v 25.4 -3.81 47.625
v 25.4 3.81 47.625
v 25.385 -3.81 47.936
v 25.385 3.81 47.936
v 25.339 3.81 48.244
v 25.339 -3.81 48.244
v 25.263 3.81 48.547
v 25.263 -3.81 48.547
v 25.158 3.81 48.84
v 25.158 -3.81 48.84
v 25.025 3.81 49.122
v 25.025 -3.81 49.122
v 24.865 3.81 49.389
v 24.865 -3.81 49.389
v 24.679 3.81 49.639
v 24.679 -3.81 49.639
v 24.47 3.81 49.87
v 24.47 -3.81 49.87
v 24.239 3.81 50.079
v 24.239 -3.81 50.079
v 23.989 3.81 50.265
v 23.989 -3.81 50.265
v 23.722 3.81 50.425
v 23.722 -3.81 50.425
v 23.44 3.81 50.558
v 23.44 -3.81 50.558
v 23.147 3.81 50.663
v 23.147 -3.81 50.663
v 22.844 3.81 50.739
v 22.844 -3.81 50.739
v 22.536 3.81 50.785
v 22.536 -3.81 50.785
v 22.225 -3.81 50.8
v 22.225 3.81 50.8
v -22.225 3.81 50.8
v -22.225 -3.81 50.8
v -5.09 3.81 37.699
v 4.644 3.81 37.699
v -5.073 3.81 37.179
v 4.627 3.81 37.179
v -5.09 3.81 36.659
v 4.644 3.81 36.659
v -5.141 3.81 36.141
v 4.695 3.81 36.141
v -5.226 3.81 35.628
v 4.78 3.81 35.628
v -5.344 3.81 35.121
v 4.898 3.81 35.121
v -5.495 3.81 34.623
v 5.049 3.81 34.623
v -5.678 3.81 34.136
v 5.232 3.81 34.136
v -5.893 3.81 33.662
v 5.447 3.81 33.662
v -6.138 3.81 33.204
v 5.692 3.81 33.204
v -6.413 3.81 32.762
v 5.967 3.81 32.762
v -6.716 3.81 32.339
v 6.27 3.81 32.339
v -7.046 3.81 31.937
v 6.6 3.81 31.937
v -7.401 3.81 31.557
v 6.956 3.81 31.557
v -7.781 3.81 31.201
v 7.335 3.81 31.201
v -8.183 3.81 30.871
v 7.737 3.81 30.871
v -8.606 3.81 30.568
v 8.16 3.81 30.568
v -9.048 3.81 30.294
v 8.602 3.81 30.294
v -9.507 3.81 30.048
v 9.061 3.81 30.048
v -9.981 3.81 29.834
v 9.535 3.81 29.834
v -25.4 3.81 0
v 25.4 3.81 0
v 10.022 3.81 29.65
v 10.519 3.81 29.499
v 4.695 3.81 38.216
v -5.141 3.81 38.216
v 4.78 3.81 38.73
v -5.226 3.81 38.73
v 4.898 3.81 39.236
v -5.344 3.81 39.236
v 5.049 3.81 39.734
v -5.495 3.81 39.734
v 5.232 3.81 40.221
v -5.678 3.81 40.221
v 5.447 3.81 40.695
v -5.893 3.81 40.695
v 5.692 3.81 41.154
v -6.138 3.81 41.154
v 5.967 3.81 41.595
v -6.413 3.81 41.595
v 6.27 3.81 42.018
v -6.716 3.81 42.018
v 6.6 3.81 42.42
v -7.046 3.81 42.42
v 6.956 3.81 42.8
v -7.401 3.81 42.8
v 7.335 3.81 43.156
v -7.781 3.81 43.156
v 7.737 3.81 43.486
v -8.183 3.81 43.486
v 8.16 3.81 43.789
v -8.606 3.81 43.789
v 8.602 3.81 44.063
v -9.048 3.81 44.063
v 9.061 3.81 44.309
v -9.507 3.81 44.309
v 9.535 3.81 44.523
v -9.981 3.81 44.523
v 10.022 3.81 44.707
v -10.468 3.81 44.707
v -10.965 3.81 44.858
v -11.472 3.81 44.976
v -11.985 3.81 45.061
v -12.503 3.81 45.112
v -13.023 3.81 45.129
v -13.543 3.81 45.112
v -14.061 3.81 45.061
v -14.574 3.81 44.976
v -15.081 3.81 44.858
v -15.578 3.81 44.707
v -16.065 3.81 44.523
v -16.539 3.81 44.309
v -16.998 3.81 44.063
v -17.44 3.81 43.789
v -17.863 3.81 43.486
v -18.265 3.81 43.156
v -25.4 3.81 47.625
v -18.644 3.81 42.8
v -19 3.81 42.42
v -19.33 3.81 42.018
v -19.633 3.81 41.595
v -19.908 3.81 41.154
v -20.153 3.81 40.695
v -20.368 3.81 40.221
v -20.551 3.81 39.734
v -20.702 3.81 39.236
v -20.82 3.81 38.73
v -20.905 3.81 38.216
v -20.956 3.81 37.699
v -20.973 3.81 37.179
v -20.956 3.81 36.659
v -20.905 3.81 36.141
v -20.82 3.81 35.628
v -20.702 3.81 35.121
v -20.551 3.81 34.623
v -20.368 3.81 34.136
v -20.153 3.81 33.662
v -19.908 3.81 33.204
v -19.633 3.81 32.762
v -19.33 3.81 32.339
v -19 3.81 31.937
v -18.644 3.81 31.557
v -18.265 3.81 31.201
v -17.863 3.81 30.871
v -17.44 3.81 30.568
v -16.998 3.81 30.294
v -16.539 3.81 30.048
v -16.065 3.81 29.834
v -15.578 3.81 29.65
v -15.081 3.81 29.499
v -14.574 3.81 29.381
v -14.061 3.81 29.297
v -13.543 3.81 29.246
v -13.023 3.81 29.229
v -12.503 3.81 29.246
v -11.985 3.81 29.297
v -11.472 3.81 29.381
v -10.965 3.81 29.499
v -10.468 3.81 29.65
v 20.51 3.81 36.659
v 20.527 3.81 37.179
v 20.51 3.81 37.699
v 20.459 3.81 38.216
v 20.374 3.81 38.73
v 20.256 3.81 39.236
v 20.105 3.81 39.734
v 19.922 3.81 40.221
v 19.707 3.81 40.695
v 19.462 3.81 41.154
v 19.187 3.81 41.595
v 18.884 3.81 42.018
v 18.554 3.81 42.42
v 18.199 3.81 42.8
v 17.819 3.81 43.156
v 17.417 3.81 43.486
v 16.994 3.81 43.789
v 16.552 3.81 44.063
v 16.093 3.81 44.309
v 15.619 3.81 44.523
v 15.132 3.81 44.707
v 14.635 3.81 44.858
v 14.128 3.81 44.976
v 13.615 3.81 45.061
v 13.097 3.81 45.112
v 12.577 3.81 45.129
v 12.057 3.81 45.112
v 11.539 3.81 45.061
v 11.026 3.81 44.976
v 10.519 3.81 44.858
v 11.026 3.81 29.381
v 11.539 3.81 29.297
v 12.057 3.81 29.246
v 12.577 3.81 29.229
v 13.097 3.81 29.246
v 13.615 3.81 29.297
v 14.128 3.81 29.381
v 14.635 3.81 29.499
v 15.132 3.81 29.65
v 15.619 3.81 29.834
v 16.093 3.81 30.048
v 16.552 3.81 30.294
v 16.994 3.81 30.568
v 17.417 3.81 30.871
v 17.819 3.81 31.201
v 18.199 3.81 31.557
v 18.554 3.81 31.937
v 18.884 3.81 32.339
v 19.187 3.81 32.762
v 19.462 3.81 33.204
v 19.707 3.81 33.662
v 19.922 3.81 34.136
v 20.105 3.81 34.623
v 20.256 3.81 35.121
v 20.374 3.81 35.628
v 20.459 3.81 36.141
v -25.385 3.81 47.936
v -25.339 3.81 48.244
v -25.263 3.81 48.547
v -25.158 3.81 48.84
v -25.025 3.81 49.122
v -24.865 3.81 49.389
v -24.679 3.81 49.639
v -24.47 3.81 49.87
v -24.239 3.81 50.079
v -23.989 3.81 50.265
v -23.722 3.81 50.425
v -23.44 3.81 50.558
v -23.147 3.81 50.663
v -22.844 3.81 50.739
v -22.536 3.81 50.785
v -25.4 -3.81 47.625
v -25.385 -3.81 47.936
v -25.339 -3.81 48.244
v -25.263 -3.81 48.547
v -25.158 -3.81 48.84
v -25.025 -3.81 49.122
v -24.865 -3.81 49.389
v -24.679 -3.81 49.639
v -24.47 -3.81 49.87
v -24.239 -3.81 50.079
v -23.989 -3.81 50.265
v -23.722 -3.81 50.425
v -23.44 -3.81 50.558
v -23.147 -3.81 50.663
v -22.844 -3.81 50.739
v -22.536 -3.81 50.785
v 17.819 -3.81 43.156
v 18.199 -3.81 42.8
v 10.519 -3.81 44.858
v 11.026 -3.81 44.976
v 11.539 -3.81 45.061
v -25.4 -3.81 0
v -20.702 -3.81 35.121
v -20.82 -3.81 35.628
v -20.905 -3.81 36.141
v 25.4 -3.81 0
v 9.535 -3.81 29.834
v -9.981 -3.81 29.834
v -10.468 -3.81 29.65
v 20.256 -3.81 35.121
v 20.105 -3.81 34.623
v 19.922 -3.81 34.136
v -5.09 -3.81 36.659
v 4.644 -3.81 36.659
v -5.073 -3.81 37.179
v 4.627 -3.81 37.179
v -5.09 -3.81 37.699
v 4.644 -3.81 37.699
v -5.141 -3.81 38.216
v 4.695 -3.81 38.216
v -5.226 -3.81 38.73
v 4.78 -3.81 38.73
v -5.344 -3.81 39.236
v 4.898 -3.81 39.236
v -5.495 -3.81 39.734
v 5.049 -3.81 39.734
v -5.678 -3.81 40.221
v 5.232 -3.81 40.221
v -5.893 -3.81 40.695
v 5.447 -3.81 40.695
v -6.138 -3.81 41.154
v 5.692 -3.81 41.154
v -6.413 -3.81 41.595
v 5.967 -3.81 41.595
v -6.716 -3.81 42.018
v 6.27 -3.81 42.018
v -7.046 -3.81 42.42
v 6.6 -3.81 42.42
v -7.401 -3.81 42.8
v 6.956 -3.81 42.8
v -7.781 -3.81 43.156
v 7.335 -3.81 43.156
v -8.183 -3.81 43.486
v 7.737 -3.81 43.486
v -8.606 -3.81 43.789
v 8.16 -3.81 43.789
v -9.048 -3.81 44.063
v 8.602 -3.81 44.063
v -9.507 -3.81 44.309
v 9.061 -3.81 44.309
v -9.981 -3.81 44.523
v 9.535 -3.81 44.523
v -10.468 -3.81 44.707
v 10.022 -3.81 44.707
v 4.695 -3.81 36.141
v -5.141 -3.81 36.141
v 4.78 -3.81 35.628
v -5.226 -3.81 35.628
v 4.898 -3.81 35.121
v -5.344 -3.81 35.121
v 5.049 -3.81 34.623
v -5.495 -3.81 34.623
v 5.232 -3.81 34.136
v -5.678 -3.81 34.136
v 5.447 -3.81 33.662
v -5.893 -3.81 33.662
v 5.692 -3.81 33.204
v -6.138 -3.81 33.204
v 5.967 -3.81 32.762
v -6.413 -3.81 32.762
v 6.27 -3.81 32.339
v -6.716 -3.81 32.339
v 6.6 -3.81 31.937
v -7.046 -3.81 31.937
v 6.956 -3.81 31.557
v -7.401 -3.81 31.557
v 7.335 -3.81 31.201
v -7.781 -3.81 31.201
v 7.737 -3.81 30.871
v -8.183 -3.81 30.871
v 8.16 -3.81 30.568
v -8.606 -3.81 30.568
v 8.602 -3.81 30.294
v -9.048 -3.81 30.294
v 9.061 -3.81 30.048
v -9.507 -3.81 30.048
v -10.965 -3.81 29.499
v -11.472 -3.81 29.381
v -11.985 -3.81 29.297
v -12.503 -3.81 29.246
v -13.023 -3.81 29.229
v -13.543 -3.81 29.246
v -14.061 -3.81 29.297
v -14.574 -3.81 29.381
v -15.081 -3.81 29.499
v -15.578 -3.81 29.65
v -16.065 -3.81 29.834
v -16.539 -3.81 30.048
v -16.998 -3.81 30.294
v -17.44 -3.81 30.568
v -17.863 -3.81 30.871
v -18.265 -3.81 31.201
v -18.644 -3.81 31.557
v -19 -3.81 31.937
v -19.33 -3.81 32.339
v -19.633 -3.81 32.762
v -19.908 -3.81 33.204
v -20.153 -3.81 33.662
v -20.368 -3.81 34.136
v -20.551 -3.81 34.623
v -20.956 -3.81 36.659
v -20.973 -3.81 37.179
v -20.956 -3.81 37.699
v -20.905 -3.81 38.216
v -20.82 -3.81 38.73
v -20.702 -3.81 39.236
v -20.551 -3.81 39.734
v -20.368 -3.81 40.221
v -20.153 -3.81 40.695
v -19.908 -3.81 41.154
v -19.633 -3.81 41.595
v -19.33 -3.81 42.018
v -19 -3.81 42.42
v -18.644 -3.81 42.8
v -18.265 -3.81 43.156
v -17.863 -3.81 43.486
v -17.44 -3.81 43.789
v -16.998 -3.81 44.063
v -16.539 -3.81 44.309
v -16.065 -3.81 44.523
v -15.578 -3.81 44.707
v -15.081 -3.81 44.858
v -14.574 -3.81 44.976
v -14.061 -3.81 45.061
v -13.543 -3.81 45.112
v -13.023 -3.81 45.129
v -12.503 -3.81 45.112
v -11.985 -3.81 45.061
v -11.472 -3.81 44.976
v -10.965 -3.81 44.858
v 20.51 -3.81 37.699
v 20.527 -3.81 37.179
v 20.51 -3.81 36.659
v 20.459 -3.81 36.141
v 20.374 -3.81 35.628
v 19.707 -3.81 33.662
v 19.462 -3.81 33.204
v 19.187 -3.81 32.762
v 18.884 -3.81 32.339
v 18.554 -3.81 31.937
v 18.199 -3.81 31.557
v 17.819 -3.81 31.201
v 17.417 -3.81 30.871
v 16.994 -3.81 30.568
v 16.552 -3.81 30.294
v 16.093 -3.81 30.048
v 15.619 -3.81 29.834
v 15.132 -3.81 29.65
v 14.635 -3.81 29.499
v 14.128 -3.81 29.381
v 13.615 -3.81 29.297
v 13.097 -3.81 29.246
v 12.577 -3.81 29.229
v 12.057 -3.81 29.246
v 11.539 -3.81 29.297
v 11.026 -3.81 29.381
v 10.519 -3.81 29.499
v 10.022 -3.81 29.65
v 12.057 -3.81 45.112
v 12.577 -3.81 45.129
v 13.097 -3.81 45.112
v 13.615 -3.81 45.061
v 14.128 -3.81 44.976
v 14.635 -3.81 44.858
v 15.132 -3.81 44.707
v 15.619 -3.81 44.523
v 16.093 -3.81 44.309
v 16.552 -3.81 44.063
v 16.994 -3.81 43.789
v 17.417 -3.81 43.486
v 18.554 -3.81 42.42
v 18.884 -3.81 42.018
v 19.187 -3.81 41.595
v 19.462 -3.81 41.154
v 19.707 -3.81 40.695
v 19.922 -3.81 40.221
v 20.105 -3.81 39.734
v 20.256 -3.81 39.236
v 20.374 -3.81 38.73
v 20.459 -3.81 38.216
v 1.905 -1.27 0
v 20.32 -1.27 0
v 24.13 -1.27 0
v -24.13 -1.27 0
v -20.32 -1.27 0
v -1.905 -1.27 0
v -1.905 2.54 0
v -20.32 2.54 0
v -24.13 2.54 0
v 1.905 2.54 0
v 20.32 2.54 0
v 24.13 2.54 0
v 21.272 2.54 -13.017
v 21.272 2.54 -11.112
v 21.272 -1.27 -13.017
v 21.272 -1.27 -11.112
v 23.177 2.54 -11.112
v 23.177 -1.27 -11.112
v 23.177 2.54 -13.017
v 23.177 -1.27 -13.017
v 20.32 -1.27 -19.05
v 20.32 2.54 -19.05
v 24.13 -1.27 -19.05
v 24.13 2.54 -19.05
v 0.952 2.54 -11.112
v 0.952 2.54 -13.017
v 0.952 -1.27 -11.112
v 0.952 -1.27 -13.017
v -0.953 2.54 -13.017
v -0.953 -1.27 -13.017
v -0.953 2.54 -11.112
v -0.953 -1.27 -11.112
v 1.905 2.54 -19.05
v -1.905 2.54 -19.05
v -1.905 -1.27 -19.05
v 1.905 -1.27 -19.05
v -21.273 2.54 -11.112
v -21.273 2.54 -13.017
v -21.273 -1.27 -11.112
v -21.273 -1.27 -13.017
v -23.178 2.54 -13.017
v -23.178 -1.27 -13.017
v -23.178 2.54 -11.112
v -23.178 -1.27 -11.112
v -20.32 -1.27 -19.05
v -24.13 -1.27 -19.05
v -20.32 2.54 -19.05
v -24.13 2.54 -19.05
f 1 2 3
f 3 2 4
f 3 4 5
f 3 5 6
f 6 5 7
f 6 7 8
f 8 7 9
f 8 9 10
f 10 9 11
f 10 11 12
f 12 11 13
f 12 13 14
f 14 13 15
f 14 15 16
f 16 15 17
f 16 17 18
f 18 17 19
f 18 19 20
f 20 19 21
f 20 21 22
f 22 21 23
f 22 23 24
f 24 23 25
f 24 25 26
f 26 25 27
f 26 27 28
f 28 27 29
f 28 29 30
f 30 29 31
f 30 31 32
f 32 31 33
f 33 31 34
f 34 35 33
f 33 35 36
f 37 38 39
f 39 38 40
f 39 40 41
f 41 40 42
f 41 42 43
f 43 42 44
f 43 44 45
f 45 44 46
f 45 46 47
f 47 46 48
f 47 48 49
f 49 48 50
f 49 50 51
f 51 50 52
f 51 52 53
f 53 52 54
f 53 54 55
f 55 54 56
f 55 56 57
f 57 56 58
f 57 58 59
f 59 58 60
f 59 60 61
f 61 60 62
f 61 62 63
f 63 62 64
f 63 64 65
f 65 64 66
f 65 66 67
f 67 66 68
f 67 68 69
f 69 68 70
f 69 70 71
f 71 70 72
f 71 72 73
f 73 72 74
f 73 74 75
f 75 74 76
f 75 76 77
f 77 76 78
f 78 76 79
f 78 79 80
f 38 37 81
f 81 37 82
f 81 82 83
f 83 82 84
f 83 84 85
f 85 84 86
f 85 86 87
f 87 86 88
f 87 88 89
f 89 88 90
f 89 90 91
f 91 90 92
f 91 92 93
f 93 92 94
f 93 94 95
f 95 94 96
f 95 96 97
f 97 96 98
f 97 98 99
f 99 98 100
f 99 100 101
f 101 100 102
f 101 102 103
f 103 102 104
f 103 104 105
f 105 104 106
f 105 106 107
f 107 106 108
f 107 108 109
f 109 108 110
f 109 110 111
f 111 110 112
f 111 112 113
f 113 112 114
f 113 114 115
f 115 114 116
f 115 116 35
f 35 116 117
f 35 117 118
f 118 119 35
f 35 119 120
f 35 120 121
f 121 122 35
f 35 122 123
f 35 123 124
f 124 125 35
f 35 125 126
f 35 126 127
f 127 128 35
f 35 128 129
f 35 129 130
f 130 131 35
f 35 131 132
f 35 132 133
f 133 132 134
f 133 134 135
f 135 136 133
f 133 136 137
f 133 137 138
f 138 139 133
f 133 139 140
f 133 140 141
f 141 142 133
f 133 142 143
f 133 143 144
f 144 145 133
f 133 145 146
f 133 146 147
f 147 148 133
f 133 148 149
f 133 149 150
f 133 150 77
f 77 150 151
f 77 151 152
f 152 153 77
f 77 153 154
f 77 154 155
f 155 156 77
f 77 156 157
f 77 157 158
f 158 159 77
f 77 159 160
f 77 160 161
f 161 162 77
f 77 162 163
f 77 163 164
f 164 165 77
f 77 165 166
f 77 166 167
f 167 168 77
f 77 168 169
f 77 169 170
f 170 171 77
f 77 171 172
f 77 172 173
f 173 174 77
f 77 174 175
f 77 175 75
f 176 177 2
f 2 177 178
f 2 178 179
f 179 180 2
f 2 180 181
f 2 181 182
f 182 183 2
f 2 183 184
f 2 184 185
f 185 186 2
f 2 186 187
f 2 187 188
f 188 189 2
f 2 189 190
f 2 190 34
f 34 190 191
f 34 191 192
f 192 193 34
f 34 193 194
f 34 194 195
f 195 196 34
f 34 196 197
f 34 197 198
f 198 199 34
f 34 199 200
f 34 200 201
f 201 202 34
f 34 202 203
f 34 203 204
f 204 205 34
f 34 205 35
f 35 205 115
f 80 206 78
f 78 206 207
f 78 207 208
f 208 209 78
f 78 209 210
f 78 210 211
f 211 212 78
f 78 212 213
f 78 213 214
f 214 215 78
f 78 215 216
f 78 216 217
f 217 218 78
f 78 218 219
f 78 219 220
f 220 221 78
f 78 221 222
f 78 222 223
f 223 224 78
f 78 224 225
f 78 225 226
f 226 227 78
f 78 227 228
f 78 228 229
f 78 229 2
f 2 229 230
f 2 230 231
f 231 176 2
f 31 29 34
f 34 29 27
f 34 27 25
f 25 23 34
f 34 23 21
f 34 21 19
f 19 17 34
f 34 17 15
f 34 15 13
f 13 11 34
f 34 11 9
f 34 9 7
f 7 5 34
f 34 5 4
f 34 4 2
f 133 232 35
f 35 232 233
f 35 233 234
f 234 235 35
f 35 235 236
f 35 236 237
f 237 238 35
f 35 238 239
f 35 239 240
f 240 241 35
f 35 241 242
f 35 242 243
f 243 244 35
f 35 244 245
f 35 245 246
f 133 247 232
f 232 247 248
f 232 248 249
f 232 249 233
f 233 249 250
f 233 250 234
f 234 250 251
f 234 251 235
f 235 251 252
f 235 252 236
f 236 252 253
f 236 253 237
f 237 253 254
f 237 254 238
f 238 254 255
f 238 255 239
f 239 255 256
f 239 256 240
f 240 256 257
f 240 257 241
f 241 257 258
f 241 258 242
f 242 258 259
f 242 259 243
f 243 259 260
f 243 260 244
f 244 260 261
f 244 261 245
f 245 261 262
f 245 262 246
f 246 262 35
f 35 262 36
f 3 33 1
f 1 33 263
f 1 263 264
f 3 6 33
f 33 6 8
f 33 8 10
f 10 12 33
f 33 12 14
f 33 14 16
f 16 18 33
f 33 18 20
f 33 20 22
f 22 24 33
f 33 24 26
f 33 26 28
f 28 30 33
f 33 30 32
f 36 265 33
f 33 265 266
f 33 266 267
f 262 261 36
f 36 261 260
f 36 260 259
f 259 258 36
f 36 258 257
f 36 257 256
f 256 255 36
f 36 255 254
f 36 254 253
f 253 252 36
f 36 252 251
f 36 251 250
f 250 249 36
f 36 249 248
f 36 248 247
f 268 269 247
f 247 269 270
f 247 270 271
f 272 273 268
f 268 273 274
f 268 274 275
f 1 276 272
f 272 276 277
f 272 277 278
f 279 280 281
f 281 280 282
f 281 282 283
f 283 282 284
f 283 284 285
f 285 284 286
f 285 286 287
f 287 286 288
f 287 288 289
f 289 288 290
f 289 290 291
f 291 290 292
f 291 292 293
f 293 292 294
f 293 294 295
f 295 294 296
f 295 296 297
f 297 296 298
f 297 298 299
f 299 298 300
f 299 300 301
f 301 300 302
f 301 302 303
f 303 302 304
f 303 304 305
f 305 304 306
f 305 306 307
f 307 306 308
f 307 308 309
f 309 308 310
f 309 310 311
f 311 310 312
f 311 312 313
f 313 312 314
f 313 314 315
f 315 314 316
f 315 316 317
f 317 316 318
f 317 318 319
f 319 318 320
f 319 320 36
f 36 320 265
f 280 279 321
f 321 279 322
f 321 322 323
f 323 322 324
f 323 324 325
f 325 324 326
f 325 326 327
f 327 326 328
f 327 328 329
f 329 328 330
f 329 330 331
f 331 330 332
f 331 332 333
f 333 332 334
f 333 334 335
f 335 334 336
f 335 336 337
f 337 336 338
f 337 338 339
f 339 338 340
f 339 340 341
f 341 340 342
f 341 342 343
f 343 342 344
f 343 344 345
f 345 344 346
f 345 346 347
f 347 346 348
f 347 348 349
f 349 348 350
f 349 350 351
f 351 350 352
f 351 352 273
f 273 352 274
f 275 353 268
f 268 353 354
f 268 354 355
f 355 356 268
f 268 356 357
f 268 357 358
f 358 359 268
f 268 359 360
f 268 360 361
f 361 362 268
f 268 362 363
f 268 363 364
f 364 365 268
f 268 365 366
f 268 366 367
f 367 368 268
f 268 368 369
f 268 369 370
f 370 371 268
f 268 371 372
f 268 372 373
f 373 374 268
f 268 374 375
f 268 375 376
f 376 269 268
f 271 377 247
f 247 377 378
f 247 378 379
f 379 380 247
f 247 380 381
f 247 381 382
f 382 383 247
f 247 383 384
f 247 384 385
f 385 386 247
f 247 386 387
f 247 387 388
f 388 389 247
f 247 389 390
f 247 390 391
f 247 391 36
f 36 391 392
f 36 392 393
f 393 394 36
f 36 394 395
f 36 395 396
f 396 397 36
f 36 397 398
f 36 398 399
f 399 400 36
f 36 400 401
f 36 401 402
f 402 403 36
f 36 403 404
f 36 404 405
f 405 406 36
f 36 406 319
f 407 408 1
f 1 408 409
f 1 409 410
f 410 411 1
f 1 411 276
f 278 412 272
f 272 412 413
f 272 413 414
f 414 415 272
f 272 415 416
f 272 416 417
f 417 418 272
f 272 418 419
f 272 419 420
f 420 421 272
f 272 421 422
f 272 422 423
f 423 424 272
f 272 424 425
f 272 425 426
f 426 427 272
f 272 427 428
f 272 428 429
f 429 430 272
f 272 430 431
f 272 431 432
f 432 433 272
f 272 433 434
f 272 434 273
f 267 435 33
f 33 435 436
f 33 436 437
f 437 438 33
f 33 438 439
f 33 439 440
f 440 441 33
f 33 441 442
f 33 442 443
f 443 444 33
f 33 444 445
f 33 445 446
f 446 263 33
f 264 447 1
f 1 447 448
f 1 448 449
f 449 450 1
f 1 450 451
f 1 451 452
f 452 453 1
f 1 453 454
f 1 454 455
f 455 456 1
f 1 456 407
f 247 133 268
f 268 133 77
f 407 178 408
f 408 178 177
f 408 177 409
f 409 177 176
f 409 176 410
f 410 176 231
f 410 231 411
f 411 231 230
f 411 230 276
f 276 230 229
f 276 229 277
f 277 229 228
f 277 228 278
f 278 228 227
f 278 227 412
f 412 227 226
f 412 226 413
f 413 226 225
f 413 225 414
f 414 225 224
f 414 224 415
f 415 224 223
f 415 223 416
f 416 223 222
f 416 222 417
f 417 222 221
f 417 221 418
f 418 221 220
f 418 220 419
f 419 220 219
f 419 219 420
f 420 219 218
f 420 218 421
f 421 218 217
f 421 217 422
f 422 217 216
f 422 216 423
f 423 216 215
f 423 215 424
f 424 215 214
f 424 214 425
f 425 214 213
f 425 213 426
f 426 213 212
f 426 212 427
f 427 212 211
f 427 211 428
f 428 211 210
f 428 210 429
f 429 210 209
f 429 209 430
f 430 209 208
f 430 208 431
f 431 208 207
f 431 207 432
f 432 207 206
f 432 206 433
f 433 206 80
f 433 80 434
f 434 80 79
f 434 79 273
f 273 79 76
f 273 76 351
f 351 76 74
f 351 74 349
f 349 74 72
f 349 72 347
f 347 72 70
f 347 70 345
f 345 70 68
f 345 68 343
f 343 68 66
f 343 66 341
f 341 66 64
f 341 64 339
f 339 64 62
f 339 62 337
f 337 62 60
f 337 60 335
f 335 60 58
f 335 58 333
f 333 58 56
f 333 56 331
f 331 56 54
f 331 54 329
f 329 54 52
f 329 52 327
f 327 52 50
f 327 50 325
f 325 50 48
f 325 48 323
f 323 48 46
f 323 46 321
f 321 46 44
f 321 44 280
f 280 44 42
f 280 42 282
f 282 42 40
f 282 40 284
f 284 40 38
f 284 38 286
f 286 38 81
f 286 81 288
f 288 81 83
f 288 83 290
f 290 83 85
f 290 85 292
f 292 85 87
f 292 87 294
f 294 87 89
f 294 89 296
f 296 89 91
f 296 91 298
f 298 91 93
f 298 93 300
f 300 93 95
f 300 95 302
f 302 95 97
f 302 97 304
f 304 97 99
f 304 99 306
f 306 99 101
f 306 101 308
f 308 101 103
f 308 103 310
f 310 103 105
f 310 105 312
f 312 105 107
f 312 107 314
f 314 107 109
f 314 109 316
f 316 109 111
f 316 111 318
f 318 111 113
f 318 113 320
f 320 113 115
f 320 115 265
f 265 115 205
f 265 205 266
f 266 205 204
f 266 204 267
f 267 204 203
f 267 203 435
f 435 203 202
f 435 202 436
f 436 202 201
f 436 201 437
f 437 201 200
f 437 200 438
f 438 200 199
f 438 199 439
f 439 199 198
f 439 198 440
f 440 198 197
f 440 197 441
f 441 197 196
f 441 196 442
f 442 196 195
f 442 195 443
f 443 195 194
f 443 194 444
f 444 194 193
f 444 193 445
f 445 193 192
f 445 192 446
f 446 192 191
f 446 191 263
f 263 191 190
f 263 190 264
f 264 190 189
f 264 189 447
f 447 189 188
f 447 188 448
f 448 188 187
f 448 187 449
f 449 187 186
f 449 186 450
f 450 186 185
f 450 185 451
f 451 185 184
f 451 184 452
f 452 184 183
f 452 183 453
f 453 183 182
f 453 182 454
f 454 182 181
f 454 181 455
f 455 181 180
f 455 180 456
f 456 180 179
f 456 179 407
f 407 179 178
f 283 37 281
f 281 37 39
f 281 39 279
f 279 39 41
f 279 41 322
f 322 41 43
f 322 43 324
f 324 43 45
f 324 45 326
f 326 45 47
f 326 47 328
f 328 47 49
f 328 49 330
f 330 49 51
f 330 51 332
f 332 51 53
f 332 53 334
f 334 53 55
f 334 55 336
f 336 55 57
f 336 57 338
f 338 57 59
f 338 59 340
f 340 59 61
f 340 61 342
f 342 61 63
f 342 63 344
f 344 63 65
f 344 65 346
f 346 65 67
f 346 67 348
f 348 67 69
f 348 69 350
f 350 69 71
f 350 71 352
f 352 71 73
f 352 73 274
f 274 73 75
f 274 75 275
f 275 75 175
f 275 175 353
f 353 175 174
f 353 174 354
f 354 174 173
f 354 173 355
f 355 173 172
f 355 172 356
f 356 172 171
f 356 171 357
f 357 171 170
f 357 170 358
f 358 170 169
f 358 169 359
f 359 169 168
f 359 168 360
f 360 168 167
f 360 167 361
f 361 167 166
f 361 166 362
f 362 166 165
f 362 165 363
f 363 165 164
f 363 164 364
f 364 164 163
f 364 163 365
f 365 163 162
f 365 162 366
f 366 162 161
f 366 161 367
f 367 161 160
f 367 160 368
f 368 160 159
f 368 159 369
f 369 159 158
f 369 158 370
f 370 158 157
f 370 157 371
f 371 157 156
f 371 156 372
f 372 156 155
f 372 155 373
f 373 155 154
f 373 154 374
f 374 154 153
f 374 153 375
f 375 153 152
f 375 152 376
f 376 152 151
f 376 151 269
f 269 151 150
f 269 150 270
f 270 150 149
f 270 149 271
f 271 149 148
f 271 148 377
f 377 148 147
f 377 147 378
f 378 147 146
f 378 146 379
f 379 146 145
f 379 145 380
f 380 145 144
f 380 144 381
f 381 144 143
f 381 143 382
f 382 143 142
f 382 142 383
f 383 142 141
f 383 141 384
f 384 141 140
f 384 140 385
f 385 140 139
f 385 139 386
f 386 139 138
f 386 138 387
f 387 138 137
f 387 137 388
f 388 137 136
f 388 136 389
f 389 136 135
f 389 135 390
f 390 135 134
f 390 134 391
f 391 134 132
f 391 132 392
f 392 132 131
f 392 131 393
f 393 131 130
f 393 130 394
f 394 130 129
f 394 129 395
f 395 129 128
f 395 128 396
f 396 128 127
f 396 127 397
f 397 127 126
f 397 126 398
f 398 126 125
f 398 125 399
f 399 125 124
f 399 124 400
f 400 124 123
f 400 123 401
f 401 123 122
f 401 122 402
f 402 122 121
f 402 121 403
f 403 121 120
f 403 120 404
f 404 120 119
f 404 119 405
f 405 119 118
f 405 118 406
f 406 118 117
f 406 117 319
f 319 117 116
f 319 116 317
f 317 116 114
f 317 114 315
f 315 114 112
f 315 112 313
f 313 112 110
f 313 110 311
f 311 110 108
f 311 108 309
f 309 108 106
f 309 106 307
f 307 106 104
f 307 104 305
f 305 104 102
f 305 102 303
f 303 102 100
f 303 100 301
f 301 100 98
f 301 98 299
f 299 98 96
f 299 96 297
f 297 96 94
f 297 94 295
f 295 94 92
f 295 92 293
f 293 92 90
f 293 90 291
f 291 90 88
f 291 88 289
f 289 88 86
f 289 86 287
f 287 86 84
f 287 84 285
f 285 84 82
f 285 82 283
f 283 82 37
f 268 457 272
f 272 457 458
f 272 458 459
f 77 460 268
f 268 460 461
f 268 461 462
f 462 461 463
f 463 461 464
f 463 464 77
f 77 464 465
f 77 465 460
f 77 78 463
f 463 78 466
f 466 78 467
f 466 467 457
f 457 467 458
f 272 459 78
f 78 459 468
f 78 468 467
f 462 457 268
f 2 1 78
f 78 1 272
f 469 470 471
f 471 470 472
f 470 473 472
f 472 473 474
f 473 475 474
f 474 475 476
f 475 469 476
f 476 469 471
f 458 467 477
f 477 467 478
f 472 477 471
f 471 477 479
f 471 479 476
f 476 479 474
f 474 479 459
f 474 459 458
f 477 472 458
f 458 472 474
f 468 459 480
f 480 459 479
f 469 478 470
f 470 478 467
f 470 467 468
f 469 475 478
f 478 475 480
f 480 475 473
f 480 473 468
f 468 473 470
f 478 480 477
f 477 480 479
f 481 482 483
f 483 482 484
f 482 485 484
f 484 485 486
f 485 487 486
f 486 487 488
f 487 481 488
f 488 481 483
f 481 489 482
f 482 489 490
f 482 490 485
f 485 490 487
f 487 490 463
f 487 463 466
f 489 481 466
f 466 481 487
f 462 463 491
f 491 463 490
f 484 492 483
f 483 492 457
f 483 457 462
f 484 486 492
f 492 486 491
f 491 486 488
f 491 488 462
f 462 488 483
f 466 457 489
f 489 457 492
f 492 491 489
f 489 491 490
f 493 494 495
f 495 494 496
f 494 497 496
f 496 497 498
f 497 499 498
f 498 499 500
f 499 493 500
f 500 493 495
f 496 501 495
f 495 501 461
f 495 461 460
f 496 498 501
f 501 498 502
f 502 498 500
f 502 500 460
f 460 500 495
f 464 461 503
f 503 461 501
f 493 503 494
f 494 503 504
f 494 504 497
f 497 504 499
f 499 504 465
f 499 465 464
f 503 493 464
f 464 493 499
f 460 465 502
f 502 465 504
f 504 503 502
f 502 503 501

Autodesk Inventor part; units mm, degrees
ref_plane "YZ Plane" through (0, 0, 0) normal (1, 0, 0) x (0, 1, 0)
ref_plane "XZ Plane" through (0, 0, 0) normal (0, 1, 0) x (-1, 0, 0)
ref_plane "XY Plane" through (0, 0, 0) normal (0, 0, 1) x (1, 0, 0)
ref_plane "Work Plane1" through (0, 0, 0) normal (0, 0, 1) x (1, 0, 0)
sketch "Sketch1" plane through (0, 0, 0) normal (0, 0, 1) x (1, 0, 0)
  line L0 (24.13, -1.27) -> (20.32, -1.27) projected
  line L1 (20.32, -1.27) -> (20.32, 2.54) projected
  line L2 (20.32, 2.54) -> (24.13, 2.54) projected
  line L3 (24.13, 2.54) -> (24.13, -1.27) projected
  line L4 (-1.905, -1.27) -> (-1.905, 2.54) projected
  line L5 (-1.905, 2.54) -> (1.905, 2.54) projected
  line L6 (1.905, 2.54) -> (1.905, -1.27) projected
  line L7 (1.905, -1.27) -> (-1.905, -1.27) projected
  line L8 (-20.32, 2.54) -> (-20.32, -1.27) projected
  line L9 (-20.32, -1.27) -> (-24.13, -1.27) projected
  line L10 (-24.13, -1.27) -> (-24.13, 2.54) projected
  line L11 (-24.13, 2.54) -> (-20.32, 2.54) projected
  line L12 (-25.4, 3.81) -> (25.4, 3.81) projected
  line L13 (-25.4, -3.81) -> (-25.4, 3.81) projected
  line L14 (25.4, -3.81) -> (-25.4, -3.81) projected
  line L15 (25.4, 3.81) -> (25.4, -3.81) projected
  point P0 (0, 0)
extrude "Extrusion1" add sketch "Sketch1" against normal blind 19.05 contours L0 L1 L2 L3 | L4 L5 L6 L7 | L8 L9 L10 L11
sketch "Sketch2" plane through (-24.13, 2.54, 0) normal (0, 1, 0) x (1, 0, 0)
  line L0 (47.3075, 11.1125) -> (45.4025, 11.1125) projected
  line L1 (45.4025, 11.1125) -> (45.4025, 13.0175) projected
  line L2 (45.4025, 13.0175) -> (47.3075, 13.0175) projected
  line L3 (47.3075, 13.0175) -> (47.3075, 11.1125) projected
  line L4 (23.1775, 13.0175) -> (25.0825, 13.0175) projected
  line L5 (25.0825, 13.0175) -> (25.0825, 11.1125) projected
  line L6 (25.0825, 11.1125) -> (23.1775, 11.1125) projected
  line L7 (23.1775, 11.1125) -> (23.1775, 13.0175) projected
  line L8 (0.9525, 13.0175) -> (2.8575, 13.0175) projected
  line L9 (2.8575, 13.0175) -> (2.8575, 11.1125) projected
  line L10 (2.8575, 11.1125) -> (0.9525, 11.1125) projected
  line L11 (0.9525, 11.1125) -> (0.9525, 13.0175) projected
  point P0 (24.13, 0)
extrude "Extrusion2" cut sketch "Sketch2" against normal blind 3.81
ref_plane "Work Plane2" through (0, 0, 0) normal (0, 0, 1) x (1, 0, 0)
sketch "Sketch3" plane through (0, 0, 0) normal (0, 0, 1) x (1, 0, 0)
  line L0 (24.13, -1.27) -> (20.32, -1.27) projected
  line L1 (20.32, -1.27) -> (20.32, 2.54) projected
  line L2 (20.32, 2.54) -> (24.13, 2.54) projected
  line L3 (24.13, 2.54) -> (24.13, -1.27) projected
  line L4 (-1.905, -1.27) -> (-1.905, 2.54) projected
  line L5 (-1.905, 2.54) -> (1.905, 2.54) projected
  line L6 (1.905, 2.54) -> (1.905, -1.27) projected
  line L7 (1.905, -1.27) -> (-1.905, -1.27) projected
  line L8 (-20.32, 2.54) -> (-20.32, -1.27) projected
  line L9 (-20.32, -1.27) -> (-24.13, -1.27) projected
  line L10 (-24.13, -1.27) -> (-24.13, 2.54) projected
  line L11 (-24.13, 2.54) -> (-20.32, 2.54) projected
  line L12 (-25.4, 3.81) -> (25.4, 3.81) projected
  line L13 (-25.4, -3.81) -> (-25.4, 3.81) projected
  line L14 (25.4, -3.81) -> (-25.4, -3.81) projected
  line L15 (25.4, 3.81) -> (25.4, -3.81) projected
  point P0 (0, 0)
extrude "Extrusion3" add sketch "Sketch3" along normal blind 50.8 contours L0 L1 L2 L3 | L4 L5 L6 L7 | L8 L9 L10 L11 | L12 L15 L14 L13
sketch "Sketch4" plane through (-25.4, 3.81, 0) normal (0, 1, 0) x (1, 0, 0)
  circle A0 centre (12.377, -37.1786) radius 7.95 projected
  circle A1 centre (37.977, -37.1786) radius 7.95 projected
  line L0 (50.8, -50.8) -> (0, -50.8) projected
  point P0 (25.4, 0)
  dimension "d6" = 15.9
  dimension "d7" = 15.9
  dimension "d8" = 13.6214
extrude "Extrusion4" cut sketch "Sketch4" against normal blind 7.62
fillet "Fillet1" radius 3.175 2 edges at (-25.4, 0, 50.8) (25.4, 0, 50.8)
properties part number "Ultrasonic Mount_3DPrint"
